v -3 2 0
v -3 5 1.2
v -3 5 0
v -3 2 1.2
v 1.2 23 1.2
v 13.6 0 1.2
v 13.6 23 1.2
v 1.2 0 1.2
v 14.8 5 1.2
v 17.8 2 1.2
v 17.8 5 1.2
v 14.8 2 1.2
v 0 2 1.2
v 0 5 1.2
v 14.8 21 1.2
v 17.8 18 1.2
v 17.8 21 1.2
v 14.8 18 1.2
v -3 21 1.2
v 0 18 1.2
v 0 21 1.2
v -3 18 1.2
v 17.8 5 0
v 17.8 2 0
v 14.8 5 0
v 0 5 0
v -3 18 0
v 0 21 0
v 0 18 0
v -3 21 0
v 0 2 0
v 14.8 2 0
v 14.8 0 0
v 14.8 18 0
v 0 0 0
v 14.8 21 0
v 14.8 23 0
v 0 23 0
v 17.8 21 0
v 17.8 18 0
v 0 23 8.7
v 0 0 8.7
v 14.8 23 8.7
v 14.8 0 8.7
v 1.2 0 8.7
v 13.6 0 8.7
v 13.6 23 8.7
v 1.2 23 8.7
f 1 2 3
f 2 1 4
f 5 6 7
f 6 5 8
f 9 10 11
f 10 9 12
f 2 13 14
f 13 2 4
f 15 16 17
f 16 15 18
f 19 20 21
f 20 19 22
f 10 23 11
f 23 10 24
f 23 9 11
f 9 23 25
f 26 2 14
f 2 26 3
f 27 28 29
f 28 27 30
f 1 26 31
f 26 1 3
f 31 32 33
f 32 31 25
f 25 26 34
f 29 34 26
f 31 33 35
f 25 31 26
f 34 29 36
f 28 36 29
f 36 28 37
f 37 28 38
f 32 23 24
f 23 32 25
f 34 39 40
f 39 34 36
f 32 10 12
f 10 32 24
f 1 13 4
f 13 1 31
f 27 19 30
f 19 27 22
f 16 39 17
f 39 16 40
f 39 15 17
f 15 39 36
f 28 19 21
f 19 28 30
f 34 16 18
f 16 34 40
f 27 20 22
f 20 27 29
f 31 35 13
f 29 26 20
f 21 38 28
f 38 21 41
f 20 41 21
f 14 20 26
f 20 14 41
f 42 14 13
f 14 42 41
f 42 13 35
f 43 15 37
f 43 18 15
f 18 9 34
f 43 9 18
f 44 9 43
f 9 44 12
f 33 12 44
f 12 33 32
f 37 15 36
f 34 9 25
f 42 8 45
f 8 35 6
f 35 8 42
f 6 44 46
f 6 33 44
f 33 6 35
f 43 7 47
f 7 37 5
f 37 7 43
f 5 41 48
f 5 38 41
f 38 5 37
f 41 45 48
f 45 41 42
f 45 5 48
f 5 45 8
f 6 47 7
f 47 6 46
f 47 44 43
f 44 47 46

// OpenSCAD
// HS removable battery *fit prototype* (physical pack dimensions must
// be independently measured). Open top prevents bridging and makes printing
// possible flat on the build plate. Attach with a verified restraint strap.
$fn=48;
battery_w=11.9;
battery_h=7;
battery_l=27;
clearance=0.5;
wall=1.2;
inner_w=battery_w+clearance;
inner_h=battery_h+clearance;
outer_w=inner_w+2*wall;
base_h=wall;
channel_l=max(16,battery_l-4);
module battery_channel() {
  union() {
    cube([outer_w,channel_l,base_h]);
    cube([wall,channel_l,inner_h+wall]);
    translate([outer_w-wall,0,0])
      cube([wall,channel_l,inner_h+wall]);
    // Two unobstructed cross-strap tunnel feet, outside pack contact zone.
    for (y=[2,channel_l-5])
      translate([-3,y,0]) cube([outer_w+6,3,base_h]);
  }
}
battery_channel();
